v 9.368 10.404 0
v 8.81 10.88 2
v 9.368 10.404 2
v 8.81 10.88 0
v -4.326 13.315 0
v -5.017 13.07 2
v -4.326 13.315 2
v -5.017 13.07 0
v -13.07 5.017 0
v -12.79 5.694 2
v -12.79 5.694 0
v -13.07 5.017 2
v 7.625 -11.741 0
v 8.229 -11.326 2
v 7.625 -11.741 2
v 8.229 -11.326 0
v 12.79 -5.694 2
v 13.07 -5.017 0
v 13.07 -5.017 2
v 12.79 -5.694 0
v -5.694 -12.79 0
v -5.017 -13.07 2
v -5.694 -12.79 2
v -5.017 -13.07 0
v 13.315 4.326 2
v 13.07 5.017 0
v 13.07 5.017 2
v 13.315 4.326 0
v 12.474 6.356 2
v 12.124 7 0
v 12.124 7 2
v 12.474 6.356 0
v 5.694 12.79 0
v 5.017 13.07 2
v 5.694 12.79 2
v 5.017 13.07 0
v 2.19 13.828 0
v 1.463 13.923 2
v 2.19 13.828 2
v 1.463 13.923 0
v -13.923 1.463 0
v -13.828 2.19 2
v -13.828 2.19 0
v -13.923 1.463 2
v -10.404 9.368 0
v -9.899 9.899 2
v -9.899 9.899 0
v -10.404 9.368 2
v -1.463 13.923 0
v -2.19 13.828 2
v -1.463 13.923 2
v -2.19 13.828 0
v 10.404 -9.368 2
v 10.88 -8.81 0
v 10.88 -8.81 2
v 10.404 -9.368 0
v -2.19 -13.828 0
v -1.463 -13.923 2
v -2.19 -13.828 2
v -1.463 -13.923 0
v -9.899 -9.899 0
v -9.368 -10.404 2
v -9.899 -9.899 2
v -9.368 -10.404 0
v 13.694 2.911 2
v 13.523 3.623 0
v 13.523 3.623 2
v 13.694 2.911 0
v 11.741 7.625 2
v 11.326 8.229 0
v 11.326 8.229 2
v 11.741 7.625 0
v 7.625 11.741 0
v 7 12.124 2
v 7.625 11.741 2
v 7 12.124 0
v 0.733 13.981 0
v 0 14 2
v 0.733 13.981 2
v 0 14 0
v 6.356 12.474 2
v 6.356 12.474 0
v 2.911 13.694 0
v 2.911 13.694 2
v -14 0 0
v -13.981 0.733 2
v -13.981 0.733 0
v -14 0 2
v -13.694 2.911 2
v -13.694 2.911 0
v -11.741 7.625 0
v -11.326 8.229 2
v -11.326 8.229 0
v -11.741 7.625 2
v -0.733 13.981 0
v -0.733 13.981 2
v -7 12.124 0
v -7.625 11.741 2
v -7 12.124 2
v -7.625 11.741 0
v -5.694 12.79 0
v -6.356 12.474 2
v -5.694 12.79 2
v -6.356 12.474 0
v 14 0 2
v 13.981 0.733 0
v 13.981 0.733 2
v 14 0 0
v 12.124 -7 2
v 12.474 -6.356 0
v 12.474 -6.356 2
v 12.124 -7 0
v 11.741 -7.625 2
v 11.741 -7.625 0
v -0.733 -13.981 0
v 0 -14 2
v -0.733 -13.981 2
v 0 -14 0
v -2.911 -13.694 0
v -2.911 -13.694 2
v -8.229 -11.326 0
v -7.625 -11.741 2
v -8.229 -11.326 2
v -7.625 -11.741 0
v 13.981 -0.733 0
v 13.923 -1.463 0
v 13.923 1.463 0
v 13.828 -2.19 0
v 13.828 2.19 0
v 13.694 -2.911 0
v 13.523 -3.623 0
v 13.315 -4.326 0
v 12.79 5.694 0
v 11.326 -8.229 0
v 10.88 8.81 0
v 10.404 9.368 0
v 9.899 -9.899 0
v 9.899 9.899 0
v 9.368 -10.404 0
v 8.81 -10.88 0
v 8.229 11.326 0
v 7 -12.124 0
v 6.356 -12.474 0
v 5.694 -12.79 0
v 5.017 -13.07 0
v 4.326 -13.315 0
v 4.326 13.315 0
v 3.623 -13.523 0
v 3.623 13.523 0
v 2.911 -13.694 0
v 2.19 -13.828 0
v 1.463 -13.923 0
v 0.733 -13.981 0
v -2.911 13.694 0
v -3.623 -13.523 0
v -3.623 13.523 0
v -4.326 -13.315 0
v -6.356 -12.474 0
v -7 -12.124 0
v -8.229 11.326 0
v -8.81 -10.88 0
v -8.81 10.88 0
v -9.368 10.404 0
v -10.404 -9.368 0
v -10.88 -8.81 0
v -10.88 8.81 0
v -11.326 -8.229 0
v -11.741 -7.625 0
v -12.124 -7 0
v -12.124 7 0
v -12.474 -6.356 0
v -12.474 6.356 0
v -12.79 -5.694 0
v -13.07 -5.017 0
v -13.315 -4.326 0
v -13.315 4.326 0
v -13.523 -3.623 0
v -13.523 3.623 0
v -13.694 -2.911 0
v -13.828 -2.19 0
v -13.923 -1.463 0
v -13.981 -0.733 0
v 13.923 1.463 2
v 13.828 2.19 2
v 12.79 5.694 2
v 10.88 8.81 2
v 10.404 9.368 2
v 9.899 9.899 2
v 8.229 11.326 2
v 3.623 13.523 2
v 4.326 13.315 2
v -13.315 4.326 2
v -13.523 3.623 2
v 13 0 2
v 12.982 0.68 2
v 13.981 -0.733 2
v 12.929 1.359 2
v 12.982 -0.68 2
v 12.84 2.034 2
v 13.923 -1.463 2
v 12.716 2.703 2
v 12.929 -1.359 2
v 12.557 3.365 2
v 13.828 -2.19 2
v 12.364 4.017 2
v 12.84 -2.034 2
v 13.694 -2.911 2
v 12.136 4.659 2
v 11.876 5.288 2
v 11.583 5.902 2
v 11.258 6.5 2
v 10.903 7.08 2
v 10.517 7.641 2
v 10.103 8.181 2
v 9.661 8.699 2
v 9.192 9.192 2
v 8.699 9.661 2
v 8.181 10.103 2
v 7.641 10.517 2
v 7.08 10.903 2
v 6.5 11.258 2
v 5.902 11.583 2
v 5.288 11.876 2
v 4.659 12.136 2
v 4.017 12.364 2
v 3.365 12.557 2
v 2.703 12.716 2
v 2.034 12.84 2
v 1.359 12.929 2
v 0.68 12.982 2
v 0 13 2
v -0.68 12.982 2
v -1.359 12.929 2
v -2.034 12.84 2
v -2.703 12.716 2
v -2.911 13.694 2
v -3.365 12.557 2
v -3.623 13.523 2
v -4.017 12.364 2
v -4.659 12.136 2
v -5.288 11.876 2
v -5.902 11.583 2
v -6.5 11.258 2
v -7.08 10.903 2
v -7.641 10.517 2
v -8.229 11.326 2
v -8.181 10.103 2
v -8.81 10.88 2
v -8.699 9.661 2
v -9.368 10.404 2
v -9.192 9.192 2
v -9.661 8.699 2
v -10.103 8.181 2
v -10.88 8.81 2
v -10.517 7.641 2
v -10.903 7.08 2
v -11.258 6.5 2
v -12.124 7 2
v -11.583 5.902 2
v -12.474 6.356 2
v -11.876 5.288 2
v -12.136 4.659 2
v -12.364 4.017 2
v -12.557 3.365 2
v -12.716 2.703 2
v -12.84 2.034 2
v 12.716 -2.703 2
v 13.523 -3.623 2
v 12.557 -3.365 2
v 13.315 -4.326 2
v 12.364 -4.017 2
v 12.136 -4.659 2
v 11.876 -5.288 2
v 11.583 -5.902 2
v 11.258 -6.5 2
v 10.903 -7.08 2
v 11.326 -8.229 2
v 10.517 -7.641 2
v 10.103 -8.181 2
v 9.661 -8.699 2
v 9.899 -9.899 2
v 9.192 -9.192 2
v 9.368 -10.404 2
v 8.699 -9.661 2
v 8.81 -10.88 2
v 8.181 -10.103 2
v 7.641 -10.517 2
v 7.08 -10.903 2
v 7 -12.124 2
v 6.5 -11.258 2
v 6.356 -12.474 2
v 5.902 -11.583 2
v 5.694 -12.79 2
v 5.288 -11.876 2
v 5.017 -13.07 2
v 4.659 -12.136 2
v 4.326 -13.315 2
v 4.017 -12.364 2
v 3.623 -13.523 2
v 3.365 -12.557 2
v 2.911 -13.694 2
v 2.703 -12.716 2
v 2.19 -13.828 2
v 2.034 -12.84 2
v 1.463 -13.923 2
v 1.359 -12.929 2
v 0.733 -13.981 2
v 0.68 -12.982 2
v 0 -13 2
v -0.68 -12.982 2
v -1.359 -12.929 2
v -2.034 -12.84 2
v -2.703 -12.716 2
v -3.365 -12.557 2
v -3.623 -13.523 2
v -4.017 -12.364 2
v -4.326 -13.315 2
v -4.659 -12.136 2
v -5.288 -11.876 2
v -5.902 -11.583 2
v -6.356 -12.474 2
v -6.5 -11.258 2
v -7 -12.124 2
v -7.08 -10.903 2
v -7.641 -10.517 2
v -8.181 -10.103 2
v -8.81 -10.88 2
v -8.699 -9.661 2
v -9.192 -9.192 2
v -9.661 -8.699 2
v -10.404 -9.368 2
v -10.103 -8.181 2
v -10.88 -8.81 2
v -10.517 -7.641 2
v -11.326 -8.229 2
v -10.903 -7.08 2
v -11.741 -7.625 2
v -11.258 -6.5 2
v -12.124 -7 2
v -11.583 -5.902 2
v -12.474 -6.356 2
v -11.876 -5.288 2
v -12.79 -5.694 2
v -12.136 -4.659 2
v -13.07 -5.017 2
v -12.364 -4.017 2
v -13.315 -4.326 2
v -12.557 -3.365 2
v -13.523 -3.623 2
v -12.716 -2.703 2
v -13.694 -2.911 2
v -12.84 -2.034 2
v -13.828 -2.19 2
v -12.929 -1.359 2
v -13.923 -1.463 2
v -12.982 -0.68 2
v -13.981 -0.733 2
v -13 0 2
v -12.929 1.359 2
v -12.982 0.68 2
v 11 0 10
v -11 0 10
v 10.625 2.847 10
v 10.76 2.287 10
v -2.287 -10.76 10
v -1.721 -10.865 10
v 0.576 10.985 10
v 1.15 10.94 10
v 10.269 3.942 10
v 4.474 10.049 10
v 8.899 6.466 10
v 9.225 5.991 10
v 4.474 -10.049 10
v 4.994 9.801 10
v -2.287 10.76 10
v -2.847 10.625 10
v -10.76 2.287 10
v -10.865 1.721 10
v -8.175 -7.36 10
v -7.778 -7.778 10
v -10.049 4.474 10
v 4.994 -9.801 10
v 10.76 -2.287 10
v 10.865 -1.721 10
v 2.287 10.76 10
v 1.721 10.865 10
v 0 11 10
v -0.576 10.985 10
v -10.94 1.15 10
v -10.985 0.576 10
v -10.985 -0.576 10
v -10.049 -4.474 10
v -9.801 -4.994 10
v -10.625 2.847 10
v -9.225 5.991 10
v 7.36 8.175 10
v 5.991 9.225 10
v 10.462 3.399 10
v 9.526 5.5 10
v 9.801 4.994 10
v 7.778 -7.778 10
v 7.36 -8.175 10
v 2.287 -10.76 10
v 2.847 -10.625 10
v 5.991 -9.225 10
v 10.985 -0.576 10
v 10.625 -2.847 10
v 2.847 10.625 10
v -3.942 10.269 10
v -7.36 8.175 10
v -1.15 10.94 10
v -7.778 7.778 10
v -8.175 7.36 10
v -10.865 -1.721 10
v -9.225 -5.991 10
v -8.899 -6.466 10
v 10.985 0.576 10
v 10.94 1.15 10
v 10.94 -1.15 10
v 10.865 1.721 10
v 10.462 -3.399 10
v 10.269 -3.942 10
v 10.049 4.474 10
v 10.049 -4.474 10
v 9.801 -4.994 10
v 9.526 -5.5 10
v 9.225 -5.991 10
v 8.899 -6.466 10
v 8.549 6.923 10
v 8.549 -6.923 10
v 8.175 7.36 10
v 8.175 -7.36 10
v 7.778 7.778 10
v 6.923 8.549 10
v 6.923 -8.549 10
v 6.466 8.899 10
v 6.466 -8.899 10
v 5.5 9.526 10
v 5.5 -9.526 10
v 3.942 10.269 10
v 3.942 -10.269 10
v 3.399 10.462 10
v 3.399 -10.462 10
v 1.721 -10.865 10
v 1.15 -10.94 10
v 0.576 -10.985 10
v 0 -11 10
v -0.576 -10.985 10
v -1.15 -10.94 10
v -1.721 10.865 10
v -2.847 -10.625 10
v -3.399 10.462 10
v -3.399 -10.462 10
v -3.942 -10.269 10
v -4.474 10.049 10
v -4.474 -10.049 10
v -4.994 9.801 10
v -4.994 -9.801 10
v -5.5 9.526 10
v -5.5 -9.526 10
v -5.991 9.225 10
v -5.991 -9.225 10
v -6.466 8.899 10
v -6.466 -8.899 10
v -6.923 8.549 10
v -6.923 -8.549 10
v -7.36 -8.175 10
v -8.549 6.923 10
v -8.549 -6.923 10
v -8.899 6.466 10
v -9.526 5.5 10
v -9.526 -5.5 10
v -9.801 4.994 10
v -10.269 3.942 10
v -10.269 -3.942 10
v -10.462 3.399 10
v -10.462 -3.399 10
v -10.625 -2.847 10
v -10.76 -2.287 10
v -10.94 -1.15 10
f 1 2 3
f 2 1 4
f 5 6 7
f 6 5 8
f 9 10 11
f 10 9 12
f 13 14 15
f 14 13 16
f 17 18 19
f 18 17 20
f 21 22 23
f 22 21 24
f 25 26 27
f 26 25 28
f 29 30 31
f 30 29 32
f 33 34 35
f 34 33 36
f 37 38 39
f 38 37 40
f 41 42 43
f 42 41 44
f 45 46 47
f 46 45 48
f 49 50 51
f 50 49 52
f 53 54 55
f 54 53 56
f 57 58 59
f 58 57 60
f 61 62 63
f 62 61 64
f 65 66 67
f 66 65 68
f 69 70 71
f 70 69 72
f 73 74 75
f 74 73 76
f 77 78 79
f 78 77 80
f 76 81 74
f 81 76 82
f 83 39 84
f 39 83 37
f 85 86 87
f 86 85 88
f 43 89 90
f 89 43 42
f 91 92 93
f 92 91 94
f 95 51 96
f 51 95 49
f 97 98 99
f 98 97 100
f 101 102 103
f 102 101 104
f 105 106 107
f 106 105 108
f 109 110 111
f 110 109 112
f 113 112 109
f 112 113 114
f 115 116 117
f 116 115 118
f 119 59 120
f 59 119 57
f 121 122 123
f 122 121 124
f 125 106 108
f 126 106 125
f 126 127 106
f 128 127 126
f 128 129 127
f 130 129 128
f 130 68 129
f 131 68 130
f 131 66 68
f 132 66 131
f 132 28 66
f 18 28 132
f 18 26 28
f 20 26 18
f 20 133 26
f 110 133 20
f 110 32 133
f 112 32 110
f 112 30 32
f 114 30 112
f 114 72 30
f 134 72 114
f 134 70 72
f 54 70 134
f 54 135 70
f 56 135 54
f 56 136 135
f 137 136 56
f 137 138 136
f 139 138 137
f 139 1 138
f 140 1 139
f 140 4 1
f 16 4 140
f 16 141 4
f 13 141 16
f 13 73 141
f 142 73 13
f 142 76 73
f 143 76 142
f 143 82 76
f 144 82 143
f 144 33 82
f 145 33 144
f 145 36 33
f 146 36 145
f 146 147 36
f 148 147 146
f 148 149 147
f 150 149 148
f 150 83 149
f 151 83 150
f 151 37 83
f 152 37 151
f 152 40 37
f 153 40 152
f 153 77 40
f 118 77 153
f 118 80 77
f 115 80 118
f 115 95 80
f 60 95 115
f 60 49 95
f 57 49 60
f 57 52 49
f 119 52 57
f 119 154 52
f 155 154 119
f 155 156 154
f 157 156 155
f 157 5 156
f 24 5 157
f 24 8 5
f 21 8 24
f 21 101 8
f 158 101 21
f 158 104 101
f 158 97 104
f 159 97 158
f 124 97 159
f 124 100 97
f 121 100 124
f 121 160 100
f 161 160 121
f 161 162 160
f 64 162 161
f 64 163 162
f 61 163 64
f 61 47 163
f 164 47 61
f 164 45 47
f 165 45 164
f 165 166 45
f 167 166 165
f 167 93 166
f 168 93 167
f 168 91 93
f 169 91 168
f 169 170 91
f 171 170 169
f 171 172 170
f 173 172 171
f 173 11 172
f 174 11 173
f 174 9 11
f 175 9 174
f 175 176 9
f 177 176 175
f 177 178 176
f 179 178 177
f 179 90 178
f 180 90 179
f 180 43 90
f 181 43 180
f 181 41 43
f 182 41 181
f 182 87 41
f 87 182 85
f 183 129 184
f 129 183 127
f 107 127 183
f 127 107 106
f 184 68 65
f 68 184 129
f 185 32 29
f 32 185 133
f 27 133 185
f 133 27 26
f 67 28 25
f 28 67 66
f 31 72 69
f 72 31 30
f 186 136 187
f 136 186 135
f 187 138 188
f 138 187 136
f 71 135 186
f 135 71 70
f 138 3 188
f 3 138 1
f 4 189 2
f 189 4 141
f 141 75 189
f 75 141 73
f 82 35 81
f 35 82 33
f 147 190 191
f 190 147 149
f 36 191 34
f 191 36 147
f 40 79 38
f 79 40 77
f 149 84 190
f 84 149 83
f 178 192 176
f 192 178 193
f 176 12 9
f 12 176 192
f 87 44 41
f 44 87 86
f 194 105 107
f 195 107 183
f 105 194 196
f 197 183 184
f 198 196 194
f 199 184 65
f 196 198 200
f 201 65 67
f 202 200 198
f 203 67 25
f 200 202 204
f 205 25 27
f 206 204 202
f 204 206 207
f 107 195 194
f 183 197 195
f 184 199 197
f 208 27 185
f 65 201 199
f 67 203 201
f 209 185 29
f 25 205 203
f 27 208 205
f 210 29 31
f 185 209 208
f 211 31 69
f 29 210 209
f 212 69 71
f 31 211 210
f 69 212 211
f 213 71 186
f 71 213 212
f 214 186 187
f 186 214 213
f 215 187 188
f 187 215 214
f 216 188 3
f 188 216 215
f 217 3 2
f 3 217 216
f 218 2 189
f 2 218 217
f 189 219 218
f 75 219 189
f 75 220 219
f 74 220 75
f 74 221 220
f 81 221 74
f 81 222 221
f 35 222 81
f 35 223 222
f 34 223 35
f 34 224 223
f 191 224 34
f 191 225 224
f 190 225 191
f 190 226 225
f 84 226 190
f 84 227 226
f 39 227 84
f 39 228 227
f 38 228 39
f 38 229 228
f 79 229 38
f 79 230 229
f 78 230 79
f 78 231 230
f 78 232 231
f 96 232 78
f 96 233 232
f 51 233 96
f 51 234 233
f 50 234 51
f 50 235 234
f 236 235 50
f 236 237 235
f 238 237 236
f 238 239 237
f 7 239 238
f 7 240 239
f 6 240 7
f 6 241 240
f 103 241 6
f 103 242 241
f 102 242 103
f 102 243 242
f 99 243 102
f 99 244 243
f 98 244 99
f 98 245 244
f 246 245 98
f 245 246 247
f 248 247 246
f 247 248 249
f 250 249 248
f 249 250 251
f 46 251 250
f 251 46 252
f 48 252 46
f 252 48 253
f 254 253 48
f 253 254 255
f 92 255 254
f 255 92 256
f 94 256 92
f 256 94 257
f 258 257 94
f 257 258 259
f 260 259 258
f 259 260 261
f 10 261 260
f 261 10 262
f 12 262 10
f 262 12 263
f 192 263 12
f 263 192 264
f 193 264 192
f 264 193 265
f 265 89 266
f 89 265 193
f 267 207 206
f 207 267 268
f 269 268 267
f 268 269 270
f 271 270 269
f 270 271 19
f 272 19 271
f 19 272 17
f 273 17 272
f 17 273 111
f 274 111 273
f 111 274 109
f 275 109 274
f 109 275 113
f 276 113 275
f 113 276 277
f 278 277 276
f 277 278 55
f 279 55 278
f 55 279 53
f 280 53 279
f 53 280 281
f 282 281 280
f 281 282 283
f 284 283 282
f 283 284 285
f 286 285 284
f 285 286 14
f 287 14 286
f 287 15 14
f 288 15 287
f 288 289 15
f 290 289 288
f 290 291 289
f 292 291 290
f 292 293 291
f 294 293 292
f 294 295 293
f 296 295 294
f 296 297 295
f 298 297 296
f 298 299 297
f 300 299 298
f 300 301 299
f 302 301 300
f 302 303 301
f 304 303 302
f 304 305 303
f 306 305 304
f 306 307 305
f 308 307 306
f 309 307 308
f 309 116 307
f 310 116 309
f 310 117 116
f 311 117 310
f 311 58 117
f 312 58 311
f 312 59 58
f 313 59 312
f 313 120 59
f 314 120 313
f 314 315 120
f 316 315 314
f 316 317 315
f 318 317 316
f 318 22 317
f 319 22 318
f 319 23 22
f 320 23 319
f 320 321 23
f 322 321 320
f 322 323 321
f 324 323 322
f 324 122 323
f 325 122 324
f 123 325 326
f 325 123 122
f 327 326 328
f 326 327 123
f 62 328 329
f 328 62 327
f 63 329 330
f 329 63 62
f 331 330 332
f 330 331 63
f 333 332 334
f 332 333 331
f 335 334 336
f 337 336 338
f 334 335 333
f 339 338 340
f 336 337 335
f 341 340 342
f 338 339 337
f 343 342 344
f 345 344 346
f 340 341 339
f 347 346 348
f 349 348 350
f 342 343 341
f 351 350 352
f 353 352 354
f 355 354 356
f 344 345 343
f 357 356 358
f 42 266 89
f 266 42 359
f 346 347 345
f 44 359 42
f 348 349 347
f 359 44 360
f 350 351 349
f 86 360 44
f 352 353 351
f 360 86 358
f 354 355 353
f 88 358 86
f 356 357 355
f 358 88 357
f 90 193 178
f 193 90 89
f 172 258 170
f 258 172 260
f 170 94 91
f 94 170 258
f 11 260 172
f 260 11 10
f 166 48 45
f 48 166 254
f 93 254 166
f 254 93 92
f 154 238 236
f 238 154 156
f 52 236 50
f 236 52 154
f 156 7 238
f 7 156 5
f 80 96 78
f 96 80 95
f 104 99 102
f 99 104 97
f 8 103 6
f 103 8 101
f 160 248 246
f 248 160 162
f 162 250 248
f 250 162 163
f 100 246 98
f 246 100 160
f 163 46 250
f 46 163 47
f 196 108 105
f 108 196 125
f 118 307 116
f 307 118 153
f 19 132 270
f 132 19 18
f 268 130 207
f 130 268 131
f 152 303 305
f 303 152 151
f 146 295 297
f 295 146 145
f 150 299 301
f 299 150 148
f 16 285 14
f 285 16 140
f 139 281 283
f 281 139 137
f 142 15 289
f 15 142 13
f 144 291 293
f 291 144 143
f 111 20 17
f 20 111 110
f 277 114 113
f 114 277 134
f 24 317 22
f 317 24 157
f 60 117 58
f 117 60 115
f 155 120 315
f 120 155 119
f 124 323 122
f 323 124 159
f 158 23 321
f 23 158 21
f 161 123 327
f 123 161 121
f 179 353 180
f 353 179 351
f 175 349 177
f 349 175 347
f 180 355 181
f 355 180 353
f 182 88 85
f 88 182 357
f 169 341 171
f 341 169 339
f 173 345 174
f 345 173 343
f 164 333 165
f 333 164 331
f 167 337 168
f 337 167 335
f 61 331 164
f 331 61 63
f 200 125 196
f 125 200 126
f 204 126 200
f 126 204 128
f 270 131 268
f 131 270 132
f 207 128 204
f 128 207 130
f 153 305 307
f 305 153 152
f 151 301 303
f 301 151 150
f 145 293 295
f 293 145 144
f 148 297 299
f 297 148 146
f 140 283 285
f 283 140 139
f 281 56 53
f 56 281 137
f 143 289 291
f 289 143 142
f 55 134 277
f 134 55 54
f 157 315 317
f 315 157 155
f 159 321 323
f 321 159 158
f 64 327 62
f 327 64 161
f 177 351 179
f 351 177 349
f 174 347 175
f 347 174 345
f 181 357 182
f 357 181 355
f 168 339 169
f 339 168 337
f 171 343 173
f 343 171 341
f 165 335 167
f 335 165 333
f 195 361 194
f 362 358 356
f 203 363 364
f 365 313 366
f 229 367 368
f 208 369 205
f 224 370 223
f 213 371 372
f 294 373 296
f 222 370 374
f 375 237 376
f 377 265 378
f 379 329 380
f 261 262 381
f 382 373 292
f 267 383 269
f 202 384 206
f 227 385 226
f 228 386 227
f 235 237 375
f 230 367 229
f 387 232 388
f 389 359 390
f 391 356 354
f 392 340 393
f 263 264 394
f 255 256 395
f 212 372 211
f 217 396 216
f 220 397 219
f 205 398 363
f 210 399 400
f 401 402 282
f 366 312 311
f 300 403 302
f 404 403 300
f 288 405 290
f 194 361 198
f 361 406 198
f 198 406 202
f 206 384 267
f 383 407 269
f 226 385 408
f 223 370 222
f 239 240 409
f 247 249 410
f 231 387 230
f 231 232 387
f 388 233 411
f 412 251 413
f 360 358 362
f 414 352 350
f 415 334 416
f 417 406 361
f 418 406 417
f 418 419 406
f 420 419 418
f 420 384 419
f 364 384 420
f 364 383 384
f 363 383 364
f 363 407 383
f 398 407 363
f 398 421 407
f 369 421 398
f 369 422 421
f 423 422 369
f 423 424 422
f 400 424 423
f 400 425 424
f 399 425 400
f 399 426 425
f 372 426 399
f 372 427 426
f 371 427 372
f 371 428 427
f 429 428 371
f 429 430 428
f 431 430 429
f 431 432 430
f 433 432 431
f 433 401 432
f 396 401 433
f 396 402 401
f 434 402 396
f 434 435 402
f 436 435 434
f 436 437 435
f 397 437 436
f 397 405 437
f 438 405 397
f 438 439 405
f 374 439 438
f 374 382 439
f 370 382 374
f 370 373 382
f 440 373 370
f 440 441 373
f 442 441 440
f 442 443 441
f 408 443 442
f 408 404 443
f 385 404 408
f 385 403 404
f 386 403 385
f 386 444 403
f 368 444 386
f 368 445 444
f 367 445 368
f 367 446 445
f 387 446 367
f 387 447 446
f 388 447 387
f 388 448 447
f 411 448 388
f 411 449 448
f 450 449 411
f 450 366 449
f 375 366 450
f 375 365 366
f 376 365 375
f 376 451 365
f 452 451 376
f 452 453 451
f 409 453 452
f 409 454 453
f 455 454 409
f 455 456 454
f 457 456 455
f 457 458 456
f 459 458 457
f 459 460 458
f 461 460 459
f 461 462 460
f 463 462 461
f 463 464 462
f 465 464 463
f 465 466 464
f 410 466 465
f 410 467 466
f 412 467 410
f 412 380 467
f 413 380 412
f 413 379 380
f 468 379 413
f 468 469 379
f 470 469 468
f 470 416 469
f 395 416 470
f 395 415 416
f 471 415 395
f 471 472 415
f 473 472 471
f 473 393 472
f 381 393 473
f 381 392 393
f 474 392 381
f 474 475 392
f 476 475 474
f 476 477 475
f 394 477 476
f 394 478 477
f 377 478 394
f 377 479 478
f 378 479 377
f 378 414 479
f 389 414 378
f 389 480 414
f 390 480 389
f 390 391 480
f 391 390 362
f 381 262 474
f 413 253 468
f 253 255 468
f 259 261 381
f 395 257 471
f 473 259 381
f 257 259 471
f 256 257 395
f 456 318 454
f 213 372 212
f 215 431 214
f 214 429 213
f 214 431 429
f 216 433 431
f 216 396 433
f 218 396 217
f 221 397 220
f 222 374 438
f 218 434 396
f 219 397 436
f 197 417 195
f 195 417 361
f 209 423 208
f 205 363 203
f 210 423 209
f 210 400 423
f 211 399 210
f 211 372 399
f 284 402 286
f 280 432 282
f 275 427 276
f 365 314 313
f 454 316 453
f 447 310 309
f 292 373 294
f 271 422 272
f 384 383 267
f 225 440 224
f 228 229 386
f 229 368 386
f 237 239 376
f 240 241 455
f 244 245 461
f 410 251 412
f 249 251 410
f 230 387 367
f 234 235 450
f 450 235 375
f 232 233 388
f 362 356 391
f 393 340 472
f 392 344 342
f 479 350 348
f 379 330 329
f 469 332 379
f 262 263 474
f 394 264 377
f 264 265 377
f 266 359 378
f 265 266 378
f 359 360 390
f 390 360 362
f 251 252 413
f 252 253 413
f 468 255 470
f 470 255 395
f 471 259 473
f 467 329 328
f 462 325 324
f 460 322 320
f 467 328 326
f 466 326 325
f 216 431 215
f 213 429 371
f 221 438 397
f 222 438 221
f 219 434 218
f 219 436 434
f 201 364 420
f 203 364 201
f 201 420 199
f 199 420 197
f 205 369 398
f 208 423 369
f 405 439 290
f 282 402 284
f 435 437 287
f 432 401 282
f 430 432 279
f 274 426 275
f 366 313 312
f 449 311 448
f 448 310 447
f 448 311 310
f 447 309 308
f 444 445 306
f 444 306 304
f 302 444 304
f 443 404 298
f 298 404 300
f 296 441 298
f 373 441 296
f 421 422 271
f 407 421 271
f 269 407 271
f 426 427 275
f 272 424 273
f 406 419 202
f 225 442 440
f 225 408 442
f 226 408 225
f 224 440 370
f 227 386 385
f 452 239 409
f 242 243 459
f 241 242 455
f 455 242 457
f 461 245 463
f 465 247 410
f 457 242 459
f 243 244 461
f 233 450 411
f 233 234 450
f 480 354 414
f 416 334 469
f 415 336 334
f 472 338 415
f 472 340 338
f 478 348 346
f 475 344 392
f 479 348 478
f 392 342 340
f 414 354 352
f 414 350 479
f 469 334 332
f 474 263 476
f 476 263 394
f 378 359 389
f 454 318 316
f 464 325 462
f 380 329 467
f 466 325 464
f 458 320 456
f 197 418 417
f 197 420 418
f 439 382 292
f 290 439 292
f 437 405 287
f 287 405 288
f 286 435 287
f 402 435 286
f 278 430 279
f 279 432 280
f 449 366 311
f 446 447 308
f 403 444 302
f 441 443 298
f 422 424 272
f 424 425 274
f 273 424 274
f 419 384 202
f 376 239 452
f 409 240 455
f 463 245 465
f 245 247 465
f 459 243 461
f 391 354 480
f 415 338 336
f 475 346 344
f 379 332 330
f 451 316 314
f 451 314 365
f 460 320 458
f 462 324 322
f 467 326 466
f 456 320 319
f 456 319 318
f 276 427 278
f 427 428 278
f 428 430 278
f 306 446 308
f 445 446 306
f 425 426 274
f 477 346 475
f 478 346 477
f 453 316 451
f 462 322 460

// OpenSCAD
plug_height=8;
plug_radius_small=11;
plug_radius_big=13;
lid_height=2;
lid_radius=14;
fn=120;

cylinder(r=lid_radius,h=lid_height,$fn=fn);

translate([0,0,lid_height])cylinder(r1=plug_radius_big,r2=plug_radius_small,h=plug_height,$fn=fn);
